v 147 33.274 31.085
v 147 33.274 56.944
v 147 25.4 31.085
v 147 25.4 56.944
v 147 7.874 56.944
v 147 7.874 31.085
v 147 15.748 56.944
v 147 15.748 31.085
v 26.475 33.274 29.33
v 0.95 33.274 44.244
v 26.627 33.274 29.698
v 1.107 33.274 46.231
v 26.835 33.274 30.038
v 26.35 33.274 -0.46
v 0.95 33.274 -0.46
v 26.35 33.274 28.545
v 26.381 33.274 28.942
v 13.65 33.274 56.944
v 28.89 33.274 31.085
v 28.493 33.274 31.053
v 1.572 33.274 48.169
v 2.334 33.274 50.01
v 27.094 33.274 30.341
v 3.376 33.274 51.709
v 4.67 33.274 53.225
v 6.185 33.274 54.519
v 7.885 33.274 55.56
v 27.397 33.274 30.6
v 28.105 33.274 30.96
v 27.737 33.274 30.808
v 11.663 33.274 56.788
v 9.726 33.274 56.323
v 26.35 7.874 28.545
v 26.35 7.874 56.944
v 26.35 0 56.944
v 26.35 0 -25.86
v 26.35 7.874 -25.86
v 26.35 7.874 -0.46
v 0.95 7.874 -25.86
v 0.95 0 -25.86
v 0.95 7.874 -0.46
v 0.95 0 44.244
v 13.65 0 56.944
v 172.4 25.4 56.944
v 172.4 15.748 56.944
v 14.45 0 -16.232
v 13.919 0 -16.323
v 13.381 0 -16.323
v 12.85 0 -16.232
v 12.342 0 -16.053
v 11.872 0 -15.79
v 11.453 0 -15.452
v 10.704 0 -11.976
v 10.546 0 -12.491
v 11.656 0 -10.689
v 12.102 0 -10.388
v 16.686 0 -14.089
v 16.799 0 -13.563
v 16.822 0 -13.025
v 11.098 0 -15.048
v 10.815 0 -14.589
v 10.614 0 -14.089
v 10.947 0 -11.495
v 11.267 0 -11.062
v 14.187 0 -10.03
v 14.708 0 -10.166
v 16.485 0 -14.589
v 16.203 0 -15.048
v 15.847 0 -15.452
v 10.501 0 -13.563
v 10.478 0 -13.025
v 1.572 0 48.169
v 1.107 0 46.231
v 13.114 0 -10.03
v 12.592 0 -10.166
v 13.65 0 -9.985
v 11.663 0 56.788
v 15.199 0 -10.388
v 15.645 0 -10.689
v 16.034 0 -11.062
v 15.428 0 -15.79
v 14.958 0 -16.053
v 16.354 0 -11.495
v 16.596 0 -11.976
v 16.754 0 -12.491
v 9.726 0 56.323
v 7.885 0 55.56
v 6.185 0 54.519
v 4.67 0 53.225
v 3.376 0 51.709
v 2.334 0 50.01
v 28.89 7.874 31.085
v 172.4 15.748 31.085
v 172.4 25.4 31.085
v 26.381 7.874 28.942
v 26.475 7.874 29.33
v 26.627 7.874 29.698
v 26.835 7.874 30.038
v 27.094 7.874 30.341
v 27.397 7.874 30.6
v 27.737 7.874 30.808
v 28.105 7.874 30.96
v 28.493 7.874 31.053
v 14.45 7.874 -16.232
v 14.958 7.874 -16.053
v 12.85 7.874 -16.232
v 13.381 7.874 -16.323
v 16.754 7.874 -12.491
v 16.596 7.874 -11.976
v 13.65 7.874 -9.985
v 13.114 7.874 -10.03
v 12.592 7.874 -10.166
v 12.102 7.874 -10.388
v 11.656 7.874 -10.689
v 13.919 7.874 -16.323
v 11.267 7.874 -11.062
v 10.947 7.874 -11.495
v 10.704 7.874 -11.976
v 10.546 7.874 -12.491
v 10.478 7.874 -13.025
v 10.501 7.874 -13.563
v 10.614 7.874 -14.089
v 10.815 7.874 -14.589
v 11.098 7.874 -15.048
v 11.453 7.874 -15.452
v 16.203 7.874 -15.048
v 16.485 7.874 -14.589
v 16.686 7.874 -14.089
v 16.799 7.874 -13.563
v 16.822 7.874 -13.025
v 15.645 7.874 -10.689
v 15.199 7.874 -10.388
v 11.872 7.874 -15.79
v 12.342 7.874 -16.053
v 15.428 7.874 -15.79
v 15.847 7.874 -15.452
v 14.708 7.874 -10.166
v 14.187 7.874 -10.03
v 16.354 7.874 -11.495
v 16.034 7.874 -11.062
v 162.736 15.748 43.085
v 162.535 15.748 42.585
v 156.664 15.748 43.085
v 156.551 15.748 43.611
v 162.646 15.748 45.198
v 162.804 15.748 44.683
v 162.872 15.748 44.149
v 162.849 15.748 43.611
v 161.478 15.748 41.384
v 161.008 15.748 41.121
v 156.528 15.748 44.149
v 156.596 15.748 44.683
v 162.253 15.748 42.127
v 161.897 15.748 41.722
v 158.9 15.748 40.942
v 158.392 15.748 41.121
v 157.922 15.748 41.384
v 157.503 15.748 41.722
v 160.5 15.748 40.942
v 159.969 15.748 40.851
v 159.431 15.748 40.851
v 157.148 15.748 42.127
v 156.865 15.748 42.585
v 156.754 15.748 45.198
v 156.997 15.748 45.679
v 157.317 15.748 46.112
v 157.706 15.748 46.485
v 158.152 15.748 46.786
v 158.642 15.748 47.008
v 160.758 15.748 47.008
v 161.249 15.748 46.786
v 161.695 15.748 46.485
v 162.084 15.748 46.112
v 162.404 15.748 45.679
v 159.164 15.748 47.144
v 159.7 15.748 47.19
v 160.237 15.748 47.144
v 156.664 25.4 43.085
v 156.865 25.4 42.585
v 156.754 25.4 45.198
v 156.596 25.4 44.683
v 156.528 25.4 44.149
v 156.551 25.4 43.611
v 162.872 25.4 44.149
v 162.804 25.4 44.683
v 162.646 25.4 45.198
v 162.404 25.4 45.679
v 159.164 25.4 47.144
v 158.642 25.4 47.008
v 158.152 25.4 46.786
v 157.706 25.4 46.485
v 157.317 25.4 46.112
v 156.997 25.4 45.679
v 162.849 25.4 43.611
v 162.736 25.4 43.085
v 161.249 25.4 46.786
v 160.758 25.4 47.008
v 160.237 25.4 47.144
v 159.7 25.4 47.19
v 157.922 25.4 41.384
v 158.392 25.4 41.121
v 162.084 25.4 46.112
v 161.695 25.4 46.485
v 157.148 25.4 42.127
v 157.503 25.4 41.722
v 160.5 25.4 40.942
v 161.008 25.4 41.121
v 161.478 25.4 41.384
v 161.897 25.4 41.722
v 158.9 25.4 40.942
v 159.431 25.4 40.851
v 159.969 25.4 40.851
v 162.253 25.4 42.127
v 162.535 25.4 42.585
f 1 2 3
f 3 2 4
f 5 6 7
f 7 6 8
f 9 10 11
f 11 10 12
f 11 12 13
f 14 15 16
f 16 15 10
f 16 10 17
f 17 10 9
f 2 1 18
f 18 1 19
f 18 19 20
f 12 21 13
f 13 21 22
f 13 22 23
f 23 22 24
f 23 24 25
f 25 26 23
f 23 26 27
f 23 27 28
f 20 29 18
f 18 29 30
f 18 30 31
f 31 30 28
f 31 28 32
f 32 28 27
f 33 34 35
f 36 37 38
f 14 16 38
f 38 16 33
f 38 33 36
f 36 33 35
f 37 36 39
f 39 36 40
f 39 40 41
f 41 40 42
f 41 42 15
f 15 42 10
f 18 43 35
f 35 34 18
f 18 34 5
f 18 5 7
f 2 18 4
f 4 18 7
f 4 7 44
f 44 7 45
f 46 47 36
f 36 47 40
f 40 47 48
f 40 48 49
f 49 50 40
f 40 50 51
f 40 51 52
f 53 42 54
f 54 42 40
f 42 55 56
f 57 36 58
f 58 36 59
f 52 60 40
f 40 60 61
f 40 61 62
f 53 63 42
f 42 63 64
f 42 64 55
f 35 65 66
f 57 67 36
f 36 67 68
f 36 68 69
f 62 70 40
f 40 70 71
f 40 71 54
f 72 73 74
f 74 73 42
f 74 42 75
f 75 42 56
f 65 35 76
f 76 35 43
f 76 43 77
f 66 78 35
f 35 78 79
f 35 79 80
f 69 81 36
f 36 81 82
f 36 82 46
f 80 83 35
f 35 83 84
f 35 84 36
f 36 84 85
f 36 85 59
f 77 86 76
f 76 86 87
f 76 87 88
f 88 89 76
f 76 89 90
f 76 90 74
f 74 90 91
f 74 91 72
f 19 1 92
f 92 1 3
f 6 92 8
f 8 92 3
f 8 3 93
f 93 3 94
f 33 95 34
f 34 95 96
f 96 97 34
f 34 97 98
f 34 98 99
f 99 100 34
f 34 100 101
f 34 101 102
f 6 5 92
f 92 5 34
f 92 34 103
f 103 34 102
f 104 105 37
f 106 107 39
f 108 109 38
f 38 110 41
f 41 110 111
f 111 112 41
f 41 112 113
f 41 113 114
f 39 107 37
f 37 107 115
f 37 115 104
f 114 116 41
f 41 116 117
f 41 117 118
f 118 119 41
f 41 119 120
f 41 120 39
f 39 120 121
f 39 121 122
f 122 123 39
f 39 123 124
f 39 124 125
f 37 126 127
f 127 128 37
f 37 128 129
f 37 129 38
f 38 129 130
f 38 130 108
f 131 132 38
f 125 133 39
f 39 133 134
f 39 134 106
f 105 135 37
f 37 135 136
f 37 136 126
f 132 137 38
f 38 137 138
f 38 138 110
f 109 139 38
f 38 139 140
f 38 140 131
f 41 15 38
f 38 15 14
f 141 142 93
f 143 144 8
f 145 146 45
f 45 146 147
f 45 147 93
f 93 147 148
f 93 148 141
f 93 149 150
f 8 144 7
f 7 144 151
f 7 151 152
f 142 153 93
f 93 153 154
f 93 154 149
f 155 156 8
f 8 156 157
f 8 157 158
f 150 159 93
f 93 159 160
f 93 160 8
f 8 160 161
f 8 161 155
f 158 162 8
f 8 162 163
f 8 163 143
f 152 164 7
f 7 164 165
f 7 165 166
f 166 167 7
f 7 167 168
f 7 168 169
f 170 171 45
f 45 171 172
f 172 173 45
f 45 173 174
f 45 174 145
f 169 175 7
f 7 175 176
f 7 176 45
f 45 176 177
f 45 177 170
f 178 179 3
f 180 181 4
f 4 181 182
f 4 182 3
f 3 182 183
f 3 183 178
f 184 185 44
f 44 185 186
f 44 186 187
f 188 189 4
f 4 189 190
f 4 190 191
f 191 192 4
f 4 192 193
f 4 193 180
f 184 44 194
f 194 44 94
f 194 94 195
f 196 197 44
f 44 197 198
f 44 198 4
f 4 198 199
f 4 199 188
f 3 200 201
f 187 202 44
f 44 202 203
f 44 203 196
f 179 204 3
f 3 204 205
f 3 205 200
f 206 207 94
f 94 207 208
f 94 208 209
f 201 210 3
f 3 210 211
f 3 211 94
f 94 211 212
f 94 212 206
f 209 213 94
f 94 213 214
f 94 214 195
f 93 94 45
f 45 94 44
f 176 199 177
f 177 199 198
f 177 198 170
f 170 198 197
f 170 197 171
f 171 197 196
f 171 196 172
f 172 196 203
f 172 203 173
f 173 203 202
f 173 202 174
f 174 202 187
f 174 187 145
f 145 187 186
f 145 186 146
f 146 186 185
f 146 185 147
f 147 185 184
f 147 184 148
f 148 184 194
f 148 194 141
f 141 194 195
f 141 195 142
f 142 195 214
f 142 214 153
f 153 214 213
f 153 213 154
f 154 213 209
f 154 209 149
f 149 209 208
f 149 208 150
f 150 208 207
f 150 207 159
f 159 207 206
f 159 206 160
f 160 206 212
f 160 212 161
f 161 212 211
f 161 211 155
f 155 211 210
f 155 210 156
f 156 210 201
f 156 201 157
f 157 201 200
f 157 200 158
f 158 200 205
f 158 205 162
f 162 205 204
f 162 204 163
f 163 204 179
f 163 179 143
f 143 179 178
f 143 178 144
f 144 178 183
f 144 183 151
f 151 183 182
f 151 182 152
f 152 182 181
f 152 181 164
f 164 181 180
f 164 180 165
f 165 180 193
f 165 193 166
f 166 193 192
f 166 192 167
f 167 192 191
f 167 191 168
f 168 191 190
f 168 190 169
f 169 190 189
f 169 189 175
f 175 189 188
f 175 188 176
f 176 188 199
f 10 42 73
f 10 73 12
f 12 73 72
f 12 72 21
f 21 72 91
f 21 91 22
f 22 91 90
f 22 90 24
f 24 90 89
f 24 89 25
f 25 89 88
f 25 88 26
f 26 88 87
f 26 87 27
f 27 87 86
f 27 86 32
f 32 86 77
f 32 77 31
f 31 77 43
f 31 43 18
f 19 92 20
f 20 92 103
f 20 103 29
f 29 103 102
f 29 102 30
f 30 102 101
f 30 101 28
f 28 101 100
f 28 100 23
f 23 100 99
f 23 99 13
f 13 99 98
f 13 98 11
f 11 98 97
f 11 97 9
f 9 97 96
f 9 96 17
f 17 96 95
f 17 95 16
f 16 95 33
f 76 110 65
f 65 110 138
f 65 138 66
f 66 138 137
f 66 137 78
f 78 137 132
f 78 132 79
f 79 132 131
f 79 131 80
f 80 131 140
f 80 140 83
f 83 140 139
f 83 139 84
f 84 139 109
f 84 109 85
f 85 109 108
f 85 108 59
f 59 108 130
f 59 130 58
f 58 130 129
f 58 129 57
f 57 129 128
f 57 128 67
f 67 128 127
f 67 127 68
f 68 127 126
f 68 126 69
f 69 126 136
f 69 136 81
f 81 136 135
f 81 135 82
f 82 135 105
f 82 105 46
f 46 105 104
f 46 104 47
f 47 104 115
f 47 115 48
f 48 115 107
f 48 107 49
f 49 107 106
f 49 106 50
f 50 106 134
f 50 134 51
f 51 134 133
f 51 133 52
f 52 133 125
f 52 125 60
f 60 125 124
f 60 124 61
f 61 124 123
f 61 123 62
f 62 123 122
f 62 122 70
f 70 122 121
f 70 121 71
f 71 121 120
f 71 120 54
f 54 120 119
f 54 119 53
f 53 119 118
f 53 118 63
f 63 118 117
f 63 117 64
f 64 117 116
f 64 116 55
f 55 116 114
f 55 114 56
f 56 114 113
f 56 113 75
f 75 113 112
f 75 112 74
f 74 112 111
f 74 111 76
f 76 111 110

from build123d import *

# Parameters (mm, degrees)
SKETCH1_W           = 25.4
SKETCH1_H           = 82.804
BOSS_EXTRUDE1_DEPTH = 33.274
SKETCH3_W           = 25.859634715
SKETCH3_H           = 25.4
BOSS_EXTRUDE2_DEPTH = 120.65
SKETCH8_W           = 25.4
SKETCH8_H           = 25.4
CUT_EXTRUDE5_DEPTH  = 25.4
SKETCH5_W           = 25.859634715
SKETCH5_H           = 9.652
BOSS_EXTRUDE3_DEPTH = 25.4
SKETCH7_R           = 3.175
CUT_EXTRUDE4_DEPTH  = 41.402
FILLET1_R           = 12.7
FILLET2_R           = 2.54
SKETCH9_R           = 3.175
CUT_EXTRUDE6_DEPTH  = 25.4


with BuildPart() as part:
    # Sketch1 → Boss-Extrude1 (new body)
    with BuildSketch(Plane(origin=(0, 0, 0), x_dir=(1, 0, 0), z_dir=(0, 1, 0))):
        with Locations((13.650196891, -15.542365285)):
            Rectangle(SKETCH1_W, SKETCH1_H)
    extrude(amount=BOSS_EXTRUDE1_DEPTH)

    # Sketch3 → Boss-Extrude2 (add)
    with BuildSketch(Plane(origin=(26.350196891, 0, 0), x_dir=(0, 0, -1), z_dir=(1, 0, 0))):
        with Locations((-44.014547928, 20.574)):
            Rectangle(SKETCH3_W, SKETCH3_H)
    extrude(amount=BOSS_EXTRUDE2_DEPTH)

    # Sketch8 → Cut-Extrude5 (cut)
    with BuildSketch(Plane(origin=(0, 0, -25.859634715), x_dir=(-1, 0, 0), z_dir=(0, 0, -1))):
        with Locations((-13.650196891, 20.574)):
            Rectangle(SKETCH8_W, SKETCH8_H)
    extrude(amount=-CUT_EXTRUDE5_DEPTH, mode=Mode.SUBTRACT)

    # Sketch5 → Boss-Extrude3 (add)
    with BuildSketch(Plane(origin=(147.000196891, 0, 0), x_dir=(0, 0, -1), z_dir=(1, 0, 0))):
        with Locations((-44.014547928, 20.574)):
            Rectangle(SKETCH5_W, SKETCH5_H)
    extrude(amount=BOSS_EXTRUDE3_DEPTH)

    # Sketch7 → Cut-Extrude4 (cut)
    with BuildSketch(Plane(origin=(0, 25.4, 0), x_dir=(1, 0, 0), z_dir=(0, 1, 0))):
        with Locations(Location((159.700196891, -44.014547927, 0), (0, 0, 270))):
            Circle(SKETCH7_R)
    extrude(amount=-CUT_EXTRUDE4_DEPTH, mode=Mode.SUBTRACT)

    # Fillet1
    fillet1_edges = [part.edges().sort_by_distance(p)[0] for p in [
        (0.950196891, 16.637, 56.944365285),
    ]]
    fillet(fillet1_edges, radius=FILLET1_R)

    # Fillet2
    fillet2_edges = [part.edges().sort_by_distance(p)[0] for p in [
        (26.350196891, 20.574, 31.08473057),
    ]]
    fillet(fillet2_edges, radius=FILLET2_R)

    # Sketch9 → Cut-Extrude6 (cut)
    with BuildSketch(Plane(origin=(0, 7.874, 0), x_dir=(1, 0, 0), z_dir=(0, 1, 0))):
        with Locations(Location((13.650196891, 13.159634715, 0), (0, 0, 270))):
            Circle(SKETCH9_R)
    extrude(amount=-CUT_EXTRUDE6_DEPTH, mode=Mode.SUBTRACT)


solid = part.part
